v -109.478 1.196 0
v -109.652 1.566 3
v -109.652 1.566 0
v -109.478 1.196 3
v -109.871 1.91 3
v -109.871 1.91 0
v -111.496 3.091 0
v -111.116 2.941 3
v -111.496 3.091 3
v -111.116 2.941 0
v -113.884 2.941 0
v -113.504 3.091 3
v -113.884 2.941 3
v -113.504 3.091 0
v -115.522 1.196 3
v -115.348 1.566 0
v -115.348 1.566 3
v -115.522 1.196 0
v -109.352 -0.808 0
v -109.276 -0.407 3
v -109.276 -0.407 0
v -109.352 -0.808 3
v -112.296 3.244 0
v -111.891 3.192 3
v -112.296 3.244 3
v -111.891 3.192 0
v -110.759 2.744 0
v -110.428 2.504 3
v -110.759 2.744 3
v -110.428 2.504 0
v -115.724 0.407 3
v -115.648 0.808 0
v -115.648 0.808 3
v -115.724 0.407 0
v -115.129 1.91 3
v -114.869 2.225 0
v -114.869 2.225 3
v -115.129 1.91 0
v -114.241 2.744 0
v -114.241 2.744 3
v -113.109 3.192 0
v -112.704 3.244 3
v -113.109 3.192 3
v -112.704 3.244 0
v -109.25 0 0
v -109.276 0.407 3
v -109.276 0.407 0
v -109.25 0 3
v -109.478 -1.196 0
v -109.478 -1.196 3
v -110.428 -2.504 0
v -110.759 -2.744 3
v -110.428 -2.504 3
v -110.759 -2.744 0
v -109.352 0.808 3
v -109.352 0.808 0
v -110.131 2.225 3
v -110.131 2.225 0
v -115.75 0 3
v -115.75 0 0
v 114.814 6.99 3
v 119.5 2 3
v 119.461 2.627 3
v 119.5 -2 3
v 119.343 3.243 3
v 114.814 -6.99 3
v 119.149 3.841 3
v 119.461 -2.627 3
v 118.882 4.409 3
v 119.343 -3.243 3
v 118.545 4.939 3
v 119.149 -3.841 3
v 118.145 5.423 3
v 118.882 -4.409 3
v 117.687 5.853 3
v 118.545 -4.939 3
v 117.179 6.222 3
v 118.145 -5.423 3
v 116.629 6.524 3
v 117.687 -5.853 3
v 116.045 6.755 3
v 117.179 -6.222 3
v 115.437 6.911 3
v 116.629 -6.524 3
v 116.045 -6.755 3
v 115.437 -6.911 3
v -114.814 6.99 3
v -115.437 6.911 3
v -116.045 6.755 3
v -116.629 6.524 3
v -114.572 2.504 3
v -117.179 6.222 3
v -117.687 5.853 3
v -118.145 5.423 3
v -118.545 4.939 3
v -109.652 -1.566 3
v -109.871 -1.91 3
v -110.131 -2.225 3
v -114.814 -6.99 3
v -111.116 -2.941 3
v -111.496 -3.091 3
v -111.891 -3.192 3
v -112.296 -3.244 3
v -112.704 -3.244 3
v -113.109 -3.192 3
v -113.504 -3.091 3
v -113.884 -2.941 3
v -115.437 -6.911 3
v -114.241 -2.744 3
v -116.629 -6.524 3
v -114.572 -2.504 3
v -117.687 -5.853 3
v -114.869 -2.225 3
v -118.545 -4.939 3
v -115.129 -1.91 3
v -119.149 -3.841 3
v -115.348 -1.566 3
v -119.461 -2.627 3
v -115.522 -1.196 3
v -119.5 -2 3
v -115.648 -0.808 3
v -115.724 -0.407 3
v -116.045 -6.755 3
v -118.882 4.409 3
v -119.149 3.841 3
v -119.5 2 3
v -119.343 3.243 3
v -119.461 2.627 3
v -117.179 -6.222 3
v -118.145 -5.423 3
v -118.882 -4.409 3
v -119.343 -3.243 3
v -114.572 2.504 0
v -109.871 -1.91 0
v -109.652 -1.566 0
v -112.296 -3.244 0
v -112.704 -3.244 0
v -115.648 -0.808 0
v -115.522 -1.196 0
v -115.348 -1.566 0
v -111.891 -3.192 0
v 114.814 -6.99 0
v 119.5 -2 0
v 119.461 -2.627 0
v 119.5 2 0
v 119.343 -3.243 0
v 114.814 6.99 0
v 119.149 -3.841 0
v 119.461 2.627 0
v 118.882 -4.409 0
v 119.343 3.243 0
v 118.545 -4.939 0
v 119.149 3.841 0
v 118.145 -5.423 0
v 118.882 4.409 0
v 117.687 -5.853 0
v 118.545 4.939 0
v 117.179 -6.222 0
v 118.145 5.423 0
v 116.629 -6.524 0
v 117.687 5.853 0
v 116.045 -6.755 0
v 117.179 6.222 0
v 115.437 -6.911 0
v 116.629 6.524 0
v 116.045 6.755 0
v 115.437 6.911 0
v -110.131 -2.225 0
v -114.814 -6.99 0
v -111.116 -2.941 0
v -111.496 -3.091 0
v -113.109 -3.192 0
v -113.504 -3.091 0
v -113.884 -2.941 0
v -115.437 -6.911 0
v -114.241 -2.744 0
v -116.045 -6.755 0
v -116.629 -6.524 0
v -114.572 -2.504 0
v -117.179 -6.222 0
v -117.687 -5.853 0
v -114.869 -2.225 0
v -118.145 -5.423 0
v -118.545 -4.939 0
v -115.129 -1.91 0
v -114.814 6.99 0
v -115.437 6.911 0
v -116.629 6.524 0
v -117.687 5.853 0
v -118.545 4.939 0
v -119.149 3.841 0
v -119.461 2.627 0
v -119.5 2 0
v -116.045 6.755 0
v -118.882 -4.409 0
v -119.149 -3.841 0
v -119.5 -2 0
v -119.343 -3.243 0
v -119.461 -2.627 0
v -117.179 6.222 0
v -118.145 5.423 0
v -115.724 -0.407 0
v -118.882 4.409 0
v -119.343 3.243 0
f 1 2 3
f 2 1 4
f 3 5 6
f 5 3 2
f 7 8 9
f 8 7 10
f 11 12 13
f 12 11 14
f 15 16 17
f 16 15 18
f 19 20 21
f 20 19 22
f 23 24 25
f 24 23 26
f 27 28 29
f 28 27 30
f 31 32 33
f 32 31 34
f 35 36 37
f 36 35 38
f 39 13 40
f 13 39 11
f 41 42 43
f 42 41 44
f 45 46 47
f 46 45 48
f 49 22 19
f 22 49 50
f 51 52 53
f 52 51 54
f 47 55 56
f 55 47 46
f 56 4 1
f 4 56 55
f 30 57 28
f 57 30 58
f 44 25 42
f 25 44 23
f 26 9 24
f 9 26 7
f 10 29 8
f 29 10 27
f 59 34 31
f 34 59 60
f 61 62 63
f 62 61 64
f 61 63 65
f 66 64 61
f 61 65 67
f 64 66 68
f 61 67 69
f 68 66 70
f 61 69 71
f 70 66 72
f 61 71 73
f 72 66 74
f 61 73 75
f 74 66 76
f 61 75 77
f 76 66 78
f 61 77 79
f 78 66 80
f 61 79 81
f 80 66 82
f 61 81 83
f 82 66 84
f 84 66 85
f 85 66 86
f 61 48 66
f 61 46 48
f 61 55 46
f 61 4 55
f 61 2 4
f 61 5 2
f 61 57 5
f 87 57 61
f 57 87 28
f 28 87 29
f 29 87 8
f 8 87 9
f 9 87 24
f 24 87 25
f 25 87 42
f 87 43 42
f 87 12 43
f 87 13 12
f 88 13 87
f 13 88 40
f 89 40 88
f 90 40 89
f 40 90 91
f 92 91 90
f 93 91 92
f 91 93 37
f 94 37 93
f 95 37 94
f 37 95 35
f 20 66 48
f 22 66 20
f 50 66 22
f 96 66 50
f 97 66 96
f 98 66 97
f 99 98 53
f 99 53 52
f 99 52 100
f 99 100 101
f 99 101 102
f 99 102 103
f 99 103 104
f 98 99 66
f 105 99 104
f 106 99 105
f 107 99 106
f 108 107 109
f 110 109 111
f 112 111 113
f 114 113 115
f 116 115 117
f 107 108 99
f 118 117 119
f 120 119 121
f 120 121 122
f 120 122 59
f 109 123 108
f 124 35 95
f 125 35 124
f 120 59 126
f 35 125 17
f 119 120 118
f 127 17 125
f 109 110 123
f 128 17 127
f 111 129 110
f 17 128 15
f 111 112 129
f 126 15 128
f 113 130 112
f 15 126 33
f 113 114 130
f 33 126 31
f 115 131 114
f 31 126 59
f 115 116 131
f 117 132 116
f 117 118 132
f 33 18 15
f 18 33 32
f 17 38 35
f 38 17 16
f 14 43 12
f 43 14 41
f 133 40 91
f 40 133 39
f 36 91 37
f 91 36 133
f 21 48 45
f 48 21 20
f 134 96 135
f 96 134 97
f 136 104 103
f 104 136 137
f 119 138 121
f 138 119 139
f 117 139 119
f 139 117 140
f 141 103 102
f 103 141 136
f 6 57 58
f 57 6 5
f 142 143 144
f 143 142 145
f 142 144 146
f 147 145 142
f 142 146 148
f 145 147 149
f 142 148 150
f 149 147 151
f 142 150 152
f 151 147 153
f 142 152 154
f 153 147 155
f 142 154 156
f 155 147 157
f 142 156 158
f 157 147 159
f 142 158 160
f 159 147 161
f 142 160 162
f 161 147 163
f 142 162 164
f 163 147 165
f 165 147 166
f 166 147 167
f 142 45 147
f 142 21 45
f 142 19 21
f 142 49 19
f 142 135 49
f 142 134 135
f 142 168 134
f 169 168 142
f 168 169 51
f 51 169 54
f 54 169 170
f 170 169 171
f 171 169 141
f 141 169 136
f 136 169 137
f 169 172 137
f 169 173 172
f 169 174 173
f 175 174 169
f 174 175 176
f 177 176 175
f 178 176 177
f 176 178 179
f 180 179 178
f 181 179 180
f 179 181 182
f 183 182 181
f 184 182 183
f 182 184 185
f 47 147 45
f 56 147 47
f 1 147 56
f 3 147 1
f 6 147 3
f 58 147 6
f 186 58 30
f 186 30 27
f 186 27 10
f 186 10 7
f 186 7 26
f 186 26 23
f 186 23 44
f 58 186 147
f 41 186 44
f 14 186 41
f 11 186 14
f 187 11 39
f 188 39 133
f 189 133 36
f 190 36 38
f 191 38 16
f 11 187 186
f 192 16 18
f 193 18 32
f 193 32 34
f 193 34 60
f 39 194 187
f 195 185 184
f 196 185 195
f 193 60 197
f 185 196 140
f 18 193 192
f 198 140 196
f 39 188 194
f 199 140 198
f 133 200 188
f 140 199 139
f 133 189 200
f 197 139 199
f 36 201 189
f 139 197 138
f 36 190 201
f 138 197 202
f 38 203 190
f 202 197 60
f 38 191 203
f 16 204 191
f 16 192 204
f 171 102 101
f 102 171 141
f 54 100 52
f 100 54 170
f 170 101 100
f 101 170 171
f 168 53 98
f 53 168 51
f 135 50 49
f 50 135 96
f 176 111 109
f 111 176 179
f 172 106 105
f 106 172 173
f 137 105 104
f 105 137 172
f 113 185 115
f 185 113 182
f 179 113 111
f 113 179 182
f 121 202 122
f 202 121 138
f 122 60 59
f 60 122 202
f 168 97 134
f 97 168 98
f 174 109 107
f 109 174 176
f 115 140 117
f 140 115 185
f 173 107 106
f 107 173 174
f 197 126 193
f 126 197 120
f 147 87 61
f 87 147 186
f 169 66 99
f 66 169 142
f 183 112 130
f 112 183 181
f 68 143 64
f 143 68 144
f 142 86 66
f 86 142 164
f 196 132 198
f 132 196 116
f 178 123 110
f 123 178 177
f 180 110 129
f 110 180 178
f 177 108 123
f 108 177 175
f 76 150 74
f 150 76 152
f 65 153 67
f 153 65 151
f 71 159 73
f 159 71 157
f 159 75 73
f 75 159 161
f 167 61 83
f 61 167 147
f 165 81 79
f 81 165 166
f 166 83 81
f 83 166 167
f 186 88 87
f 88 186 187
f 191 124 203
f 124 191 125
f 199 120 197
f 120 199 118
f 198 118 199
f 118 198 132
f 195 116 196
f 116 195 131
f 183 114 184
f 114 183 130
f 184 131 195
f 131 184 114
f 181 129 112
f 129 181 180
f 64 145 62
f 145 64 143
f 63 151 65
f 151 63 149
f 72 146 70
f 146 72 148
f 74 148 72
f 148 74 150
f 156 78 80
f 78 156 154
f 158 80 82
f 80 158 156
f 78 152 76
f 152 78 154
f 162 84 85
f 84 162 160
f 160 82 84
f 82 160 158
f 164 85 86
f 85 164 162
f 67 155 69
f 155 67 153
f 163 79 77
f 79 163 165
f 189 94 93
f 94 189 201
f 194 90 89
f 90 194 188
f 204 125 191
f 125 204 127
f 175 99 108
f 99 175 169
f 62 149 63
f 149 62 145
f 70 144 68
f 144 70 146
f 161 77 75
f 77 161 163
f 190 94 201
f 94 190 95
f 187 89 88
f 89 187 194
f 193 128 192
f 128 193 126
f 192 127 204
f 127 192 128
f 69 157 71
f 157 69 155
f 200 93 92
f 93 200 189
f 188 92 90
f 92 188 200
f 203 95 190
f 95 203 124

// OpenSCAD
$fn = 50;


difference() {
	union() {
		hull() {
			translate(v = [-114.5000000000, 2.0000000000, 0]) {
				cylinder(h = 3, r = 5);
			}
			translate(v = [114.5000000000, 2.0000000000, 0]) {
				cylinder(h = 3, r = 5);
			}
			translate(v = [-114.5000000000, -2.0000000000, 0]) {
				cylinder(h = 3, r = 5);
			}
			translate(v = [114.5000000000, -2.0000000000, 0]) {
				cylinder(h = 3, r = 5);
			}
		}
	}
	union() {
		translate(v = [-112.5000000000, 0.0000000000, 0]) {
			cylinder(h = 3, r = 3.2500000000);
		}
		translate(v = [-112.5000000000, 0.0000000000, 0]) {
			cylinder(h = 3, r = 1.8000000000);
		}
		translate(v = [-112.5000000000, 0.0000000000, 0]) {
			cylinder(h = 3, r = 1.8000000000);
		}
		translate(v = [-112.5000000000, 0.0000000000, 0]) {
			cylinder(h = 3, r = 1.8000000000);
		}
	}
}
